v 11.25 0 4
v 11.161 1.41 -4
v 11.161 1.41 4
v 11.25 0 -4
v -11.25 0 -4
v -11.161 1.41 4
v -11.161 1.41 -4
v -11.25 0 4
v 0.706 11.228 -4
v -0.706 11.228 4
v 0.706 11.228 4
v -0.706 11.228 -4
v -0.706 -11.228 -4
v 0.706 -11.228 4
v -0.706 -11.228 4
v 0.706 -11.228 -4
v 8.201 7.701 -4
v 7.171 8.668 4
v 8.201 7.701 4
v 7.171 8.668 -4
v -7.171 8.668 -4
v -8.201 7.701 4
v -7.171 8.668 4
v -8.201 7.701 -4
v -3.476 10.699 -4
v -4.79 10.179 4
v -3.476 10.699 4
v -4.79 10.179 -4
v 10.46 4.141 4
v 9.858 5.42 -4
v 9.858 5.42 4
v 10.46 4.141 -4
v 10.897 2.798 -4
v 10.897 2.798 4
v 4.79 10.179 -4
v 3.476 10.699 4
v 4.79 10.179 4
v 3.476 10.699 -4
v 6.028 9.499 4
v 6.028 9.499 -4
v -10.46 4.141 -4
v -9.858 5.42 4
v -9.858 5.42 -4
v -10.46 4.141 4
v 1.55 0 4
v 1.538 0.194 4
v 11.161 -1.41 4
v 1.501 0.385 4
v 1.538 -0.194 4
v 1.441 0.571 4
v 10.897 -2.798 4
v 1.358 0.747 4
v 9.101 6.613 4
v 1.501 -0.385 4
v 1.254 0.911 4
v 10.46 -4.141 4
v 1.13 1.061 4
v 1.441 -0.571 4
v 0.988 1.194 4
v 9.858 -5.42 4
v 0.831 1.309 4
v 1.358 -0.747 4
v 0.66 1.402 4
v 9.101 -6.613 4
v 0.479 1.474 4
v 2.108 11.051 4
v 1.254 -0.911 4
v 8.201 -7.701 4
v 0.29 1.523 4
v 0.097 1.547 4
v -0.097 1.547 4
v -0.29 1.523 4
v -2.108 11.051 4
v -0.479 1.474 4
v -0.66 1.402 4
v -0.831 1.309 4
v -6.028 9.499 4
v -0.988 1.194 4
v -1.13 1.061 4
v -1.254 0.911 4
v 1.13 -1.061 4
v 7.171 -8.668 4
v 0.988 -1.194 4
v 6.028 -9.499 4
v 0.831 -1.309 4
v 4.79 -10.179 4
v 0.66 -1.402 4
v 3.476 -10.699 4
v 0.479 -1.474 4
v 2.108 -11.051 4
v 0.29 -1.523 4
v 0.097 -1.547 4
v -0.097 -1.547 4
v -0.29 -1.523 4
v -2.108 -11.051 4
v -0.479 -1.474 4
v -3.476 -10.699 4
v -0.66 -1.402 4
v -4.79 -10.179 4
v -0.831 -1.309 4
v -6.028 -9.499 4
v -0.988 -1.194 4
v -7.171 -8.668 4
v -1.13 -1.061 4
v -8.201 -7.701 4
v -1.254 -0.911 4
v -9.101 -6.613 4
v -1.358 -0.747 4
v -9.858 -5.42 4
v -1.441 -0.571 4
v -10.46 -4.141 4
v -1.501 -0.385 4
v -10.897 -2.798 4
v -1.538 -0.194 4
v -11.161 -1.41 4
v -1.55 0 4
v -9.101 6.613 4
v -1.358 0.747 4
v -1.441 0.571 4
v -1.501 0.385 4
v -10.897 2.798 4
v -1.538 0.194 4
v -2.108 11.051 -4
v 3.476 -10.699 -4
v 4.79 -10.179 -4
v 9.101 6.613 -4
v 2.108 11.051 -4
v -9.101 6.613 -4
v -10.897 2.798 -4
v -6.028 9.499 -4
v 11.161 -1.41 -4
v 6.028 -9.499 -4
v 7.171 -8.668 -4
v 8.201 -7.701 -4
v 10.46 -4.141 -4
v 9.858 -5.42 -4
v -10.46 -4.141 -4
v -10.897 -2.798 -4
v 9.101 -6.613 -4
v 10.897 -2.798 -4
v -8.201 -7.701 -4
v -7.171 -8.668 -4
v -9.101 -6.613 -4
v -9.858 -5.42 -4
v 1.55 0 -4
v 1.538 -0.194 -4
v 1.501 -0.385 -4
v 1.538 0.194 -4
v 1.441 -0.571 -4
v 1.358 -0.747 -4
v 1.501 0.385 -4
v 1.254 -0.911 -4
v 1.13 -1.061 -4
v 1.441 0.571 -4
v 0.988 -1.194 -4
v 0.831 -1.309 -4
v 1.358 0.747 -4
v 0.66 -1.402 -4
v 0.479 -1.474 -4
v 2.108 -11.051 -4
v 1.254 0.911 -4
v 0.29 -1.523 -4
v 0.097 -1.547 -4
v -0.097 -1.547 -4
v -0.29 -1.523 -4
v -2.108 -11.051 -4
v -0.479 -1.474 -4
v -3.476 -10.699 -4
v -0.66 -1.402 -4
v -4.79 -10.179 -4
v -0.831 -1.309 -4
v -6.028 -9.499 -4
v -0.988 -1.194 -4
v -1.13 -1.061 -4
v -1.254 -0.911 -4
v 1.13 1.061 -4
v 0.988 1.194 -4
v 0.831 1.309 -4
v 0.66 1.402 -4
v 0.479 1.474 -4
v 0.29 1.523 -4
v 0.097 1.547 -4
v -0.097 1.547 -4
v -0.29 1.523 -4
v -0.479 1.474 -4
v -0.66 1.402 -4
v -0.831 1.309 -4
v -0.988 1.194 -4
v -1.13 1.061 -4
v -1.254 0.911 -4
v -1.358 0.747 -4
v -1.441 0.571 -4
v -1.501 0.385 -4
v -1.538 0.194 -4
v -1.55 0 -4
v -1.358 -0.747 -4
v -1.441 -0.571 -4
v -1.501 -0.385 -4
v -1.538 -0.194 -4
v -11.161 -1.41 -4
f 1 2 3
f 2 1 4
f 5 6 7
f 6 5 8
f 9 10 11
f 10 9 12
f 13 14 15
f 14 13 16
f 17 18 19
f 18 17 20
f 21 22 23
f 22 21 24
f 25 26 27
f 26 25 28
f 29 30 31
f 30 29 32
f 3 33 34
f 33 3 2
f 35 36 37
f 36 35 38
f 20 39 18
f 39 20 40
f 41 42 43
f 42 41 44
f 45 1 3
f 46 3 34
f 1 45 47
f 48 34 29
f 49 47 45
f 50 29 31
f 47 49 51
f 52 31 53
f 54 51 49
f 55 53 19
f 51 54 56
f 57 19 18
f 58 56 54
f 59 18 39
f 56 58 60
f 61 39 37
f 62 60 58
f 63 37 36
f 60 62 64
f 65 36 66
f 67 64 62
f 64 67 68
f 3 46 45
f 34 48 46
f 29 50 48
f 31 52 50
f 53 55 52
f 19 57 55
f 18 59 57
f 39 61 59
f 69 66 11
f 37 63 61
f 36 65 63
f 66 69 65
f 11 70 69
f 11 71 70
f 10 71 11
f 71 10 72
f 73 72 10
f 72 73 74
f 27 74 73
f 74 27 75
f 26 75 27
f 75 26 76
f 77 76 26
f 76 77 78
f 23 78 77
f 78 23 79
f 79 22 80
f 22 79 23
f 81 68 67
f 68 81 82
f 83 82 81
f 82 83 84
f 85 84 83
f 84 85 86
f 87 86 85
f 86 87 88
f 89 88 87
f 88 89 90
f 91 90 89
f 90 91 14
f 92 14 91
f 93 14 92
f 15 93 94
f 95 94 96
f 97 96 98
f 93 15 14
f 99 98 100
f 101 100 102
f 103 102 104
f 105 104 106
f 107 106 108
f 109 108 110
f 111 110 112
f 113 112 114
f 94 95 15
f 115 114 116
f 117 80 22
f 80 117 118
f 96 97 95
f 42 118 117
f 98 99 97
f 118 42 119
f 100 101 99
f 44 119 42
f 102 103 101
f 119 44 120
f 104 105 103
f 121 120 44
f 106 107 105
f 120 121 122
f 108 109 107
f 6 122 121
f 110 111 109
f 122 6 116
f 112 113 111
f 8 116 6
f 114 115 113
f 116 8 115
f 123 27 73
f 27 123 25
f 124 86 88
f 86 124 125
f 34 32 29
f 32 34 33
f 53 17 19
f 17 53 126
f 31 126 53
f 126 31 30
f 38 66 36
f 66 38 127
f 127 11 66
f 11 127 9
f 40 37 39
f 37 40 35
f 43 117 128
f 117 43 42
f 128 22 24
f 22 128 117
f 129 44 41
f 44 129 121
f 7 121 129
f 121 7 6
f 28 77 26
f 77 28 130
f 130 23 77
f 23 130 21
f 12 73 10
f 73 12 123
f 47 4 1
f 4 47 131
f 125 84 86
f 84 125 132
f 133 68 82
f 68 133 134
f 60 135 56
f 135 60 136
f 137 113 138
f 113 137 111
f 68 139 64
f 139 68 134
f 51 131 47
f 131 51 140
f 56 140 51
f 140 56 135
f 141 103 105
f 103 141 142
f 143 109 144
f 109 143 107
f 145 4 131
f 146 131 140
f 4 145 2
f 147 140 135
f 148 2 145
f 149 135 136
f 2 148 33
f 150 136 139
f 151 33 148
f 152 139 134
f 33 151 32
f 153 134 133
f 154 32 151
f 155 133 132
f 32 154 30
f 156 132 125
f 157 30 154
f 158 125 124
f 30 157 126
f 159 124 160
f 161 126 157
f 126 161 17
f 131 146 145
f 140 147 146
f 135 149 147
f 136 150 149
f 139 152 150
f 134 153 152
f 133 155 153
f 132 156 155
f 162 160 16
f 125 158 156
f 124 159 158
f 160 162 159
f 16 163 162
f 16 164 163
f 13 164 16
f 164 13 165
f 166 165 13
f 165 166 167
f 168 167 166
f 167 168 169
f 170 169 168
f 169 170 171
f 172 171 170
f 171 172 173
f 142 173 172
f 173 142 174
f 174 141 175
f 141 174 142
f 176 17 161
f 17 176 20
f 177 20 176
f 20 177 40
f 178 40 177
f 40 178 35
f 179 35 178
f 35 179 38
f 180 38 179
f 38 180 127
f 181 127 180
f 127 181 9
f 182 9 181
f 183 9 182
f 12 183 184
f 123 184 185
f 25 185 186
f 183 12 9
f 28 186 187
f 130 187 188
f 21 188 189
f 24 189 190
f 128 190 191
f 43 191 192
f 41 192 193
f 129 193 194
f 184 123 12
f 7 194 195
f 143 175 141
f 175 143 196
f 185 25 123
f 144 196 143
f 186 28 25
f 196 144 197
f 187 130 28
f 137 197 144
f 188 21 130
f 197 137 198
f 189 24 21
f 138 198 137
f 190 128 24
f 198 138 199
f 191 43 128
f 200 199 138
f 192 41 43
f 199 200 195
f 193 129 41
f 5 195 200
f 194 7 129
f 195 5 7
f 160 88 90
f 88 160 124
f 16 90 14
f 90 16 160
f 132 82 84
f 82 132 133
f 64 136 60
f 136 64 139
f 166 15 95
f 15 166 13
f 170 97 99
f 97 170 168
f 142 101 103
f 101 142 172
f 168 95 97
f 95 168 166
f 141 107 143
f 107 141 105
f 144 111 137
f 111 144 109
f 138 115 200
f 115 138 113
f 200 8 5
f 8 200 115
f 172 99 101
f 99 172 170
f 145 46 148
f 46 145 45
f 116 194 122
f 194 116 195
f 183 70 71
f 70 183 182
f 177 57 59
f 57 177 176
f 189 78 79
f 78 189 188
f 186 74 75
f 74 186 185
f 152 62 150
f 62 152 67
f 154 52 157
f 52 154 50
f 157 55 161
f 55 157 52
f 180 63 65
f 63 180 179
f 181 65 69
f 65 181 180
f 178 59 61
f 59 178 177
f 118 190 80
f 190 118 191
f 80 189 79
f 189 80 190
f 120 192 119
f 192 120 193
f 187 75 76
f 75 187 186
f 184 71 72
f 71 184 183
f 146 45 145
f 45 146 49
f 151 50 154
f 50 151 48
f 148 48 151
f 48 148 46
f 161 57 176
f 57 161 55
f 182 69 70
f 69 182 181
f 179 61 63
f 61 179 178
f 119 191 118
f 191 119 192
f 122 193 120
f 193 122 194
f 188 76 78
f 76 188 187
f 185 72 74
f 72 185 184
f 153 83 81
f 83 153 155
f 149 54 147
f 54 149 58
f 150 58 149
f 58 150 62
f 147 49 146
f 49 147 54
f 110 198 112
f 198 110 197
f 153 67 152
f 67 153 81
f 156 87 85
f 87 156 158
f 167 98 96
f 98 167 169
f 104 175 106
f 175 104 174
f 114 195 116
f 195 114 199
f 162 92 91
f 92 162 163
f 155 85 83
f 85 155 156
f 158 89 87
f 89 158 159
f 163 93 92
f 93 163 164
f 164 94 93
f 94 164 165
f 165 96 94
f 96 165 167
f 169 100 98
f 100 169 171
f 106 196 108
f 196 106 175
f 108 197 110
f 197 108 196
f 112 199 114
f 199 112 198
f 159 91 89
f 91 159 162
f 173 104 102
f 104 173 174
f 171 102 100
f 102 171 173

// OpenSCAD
$fn = 50;


difference() {
	union() {
		translate(v = [0, 0, -4.0000000000]) {
			cylinder(h = 8, r = 11.2500000000);
		}
	}
	union() {
		translate(v = [0, 0, -100.0000000000]) {
			cylinder(h = 200, r = 1.5500000000);
		}
	}
}
